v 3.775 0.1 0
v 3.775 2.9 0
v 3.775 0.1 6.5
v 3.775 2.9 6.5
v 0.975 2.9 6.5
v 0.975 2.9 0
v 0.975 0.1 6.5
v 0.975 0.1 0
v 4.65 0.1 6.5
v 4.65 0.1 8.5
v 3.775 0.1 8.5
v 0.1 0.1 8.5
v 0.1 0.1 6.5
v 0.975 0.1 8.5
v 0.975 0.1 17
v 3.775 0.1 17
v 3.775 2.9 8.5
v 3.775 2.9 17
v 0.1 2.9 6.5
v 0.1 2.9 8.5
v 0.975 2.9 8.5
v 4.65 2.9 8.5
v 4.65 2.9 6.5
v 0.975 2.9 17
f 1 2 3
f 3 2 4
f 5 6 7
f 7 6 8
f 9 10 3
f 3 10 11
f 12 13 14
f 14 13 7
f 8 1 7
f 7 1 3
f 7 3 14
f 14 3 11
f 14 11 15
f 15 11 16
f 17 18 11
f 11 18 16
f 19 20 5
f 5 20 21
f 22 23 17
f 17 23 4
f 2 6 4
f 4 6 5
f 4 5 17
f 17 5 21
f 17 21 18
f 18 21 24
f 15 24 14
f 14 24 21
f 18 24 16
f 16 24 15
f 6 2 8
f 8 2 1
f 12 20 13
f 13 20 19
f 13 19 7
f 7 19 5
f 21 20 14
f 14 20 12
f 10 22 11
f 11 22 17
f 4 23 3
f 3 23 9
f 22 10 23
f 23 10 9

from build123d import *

# Parameters (mm, degrees)
SKETCH1_W           = 2.8
SKETCH1_H           = 2.8
BOSS_EXTRUDE1_DEPTH = 17
BOSS_EXTRUDE2_START = 6.5
SKETCH1_3_W         = 4.55
SKETCH1_3_H         = 2.8
BOSS_EXTRUDE2_DEPTH = 2


with BuildPart() as part:
    # Sketch1 → Boss-Extrude1 (new body)
    with BuildSketch(Plane.XY):
        with Locations((2.375, 1.5)):
            Rectangle(SKETCH1_W, SKETCH1_H)
    extrude(amount=BOSS_EXTRUDE1_DEPTH)

    # Sketch1<3> → Boss-Extrude2 (add)
    with BuildSketch(Plane.XY.offset(BOSS_EXTRUDE2_START)):
        with Locations((2.375, 1.5)):
            Rectangle(SKETCH1_3_W, SKETCH1_3_H)
    extrude(amount=BOSS_EXTRUDE2_DEPTH)


solid = part.part
